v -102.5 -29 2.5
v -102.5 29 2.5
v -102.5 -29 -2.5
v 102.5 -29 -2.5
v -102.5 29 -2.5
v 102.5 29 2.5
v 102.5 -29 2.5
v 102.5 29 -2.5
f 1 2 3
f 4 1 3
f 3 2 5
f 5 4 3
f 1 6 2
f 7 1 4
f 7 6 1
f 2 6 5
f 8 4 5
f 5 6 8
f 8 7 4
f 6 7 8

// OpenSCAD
polyhedron(points=[[-102.5, -29.0, -2.5], [-102.5, -29.0, 2.5], [-102.5, 29.0, -2.5], [-102.5, 29.0, 2.5], [102.5, -29.0, -2.5], [102.5, -29.0, 2.5], [102.5, 29.0, -2.5], [102.5, 29.0, 2.5]], faces=[[1, 3, 0], [4, 1, 0], [0, 3, 2], [2, 4, 0], [1, 7, 3], [5, 1, 4], [5, 7, 1], [3, 7, 2], [6, 4, 2], [2, 7, 6], [6, 5, 4], [7, 5, 6]], convexity=30);
